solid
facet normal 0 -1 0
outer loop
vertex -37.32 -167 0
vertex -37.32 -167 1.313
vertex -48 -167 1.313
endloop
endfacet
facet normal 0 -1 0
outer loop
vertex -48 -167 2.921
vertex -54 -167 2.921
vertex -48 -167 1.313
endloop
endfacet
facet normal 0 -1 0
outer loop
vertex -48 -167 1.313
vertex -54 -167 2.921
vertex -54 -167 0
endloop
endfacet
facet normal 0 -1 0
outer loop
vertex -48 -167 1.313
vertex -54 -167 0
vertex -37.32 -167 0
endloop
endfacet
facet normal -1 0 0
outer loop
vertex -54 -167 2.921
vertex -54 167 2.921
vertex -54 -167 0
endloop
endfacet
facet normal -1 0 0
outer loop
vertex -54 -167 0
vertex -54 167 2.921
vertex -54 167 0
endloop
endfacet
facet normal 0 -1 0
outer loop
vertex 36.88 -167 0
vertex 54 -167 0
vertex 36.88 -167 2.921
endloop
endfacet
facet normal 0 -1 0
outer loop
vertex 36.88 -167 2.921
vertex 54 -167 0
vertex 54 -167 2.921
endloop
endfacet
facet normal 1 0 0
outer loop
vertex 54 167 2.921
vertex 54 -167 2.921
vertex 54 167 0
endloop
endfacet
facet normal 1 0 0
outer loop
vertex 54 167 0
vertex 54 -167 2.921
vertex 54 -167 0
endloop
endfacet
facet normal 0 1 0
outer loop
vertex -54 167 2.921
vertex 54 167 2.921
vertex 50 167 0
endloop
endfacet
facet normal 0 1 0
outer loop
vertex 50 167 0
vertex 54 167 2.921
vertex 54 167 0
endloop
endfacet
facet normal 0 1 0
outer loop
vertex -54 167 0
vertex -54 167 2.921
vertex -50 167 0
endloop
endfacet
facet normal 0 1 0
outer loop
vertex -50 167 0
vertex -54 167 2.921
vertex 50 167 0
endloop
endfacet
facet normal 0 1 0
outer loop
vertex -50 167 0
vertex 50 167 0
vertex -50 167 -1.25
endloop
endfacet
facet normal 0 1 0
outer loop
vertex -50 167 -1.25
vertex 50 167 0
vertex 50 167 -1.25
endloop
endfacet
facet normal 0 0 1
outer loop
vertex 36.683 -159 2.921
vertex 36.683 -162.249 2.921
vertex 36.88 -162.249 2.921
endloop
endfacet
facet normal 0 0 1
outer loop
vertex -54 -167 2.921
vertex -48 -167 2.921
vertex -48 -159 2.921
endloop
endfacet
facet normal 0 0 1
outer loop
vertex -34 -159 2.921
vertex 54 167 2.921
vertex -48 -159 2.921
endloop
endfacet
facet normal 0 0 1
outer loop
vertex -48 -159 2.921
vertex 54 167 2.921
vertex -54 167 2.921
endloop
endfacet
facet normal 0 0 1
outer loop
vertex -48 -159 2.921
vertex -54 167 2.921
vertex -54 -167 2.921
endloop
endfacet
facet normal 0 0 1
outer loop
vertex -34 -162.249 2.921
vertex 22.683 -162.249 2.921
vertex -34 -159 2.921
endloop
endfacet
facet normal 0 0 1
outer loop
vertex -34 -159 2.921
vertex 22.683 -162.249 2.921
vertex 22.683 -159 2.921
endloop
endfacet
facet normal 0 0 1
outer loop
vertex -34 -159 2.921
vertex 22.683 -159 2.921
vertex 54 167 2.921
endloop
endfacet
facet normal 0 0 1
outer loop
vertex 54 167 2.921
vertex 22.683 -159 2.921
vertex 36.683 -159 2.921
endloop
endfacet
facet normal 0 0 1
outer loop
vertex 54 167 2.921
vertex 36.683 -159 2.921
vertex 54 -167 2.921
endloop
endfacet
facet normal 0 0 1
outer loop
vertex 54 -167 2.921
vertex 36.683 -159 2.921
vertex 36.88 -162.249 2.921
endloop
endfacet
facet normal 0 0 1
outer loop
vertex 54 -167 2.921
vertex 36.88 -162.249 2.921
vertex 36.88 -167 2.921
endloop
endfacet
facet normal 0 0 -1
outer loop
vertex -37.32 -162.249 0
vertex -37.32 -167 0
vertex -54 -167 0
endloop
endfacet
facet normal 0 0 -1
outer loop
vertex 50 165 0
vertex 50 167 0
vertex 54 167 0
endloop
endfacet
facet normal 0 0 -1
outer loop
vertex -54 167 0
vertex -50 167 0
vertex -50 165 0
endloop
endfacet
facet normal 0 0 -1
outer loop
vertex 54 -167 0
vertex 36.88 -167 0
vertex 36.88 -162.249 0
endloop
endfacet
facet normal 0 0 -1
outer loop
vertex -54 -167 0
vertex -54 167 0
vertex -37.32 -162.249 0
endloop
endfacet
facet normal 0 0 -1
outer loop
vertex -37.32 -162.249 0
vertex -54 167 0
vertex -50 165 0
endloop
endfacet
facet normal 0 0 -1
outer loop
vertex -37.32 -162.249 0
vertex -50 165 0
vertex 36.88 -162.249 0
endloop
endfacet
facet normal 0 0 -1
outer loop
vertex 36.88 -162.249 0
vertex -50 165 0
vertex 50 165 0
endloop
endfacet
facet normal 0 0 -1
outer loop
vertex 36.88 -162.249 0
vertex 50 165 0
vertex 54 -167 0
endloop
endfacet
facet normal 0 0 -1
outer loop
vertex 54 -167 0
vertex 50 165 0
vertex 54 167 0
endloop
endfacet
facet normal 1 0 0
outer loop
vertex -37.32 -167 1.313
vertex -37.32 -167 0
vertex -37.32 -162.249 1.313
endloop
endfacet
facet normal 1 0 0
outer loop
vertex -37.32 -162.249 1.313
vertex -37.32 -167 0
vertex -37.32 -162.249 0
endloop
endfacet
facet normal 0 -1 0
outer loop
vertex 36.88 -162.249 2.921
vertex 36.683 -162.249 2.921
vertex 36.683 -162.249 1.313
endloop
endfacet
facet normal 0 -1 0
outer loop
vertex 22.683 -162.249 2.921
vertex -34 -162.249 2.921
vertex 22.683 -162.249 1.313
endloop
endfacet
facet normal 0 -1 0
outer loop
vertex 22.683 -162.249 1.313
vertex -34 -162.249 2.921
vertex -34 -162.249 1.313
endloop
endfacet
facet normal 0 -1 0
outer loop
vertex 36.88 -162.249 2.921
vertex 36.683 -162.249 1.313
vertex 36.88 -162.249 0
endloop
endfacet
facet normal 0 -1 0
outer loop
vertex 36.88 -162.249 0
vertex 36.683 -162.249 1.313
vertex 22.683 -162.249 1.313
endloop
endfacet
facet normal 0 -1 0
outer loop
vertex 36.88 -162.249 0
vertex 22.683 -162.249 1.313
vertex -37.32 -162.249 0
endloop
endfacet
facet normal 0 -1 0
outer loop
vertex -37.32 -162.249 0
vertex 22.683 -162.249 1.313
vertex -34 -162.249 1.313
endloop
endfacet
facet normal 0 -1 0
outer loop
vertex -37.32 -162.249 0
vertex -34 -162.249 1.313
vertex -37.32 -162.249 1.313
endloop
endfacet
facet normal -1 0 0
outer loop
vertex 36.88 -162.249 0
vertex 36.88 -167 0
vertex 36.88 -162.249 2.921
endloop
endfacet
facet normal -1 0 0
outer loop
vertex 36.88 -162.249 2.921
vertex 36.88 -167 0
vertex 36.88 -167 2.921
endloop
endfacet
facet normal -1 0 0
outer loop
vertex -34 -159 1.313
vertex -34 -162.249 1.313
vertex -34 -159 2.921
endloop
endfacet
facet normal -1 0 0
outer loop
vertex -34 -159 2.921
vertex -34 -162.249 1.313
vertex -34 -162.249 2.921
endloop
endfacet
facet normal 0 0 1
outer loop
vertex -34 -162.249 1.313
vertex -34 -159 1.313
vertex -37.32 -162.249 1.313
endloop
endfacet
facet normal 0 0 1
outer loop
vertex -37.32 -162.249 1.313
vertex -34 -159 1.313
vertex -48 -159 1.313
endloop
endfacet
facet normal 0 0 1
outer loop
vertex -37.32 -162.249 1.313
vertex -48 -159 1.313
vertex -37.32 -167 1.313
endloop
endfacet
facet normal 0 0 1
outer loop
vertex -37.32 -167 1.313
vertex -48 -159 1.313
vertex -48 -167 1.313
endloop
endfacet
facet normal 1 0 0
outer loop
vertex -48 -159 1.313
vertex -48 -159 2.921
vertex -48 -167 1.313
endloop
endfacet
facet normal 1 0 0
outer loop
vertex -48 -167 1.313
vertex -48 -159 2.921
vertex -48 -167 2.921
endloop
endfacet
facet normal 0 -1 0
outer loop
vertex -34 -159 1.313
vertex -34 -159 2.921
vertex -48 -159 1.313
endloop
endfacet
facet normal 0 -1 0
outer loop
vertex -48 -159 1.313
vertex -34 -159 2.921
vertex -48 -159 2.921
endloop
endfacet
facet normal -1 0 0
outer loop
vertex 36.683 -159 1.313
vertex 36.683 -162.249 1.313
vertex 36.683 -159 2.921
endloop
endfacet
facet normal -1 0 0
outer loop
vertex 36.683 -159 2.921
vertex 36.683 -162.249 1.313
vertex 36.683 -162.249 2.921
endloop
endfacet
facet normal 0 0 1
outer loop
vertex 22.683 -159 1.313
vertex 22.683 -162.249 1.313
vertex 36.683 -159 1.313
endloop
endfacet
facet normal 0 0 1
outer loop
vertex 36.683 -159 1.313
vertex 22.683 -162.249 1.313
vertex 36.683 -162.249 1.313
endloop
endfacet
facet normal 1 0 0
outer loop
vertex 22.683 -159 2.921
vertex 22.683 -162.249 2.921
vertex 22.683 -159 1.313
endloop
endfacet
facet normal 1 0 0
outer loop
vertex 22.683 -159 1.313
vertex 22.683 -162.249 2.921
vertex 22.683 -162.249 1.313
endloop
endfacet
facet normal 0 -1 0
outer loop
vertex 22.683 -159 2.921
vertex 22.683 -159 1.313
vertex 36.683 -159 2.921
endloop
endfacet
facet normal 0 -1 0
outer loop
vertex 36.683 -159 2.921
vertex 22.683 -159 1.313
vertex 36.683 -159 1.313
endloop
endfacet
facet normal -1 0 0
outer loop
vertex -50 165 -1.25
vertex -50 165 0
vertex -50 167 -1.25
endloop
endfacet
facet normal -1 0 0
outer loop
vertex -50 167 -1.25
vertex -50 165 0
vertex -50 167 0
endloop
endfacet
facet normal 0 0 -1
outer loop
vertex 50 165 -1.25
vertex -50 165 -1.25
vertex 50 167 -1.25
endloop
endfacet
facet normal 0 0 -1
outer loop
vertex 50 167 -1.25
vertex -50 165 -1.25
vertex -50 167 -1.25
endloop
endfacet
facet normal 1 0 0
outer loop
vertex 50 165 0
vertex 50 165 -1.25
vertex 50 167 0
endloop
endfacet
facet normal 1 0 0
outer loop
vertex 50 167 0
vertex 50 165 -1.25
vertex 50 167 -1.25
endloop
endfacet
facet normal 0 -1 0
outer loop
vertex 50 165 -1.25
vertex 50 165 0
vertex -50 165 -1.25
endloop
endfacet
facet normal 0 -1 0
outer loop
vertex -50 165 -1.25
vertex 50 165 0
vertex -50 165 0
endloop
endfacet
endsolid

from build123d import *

# Parameters (mm, degrees)
SKETCH1_W           = 108
SKETCH1_H           = 334
BOSS_EXTRUDE1_DEPTH = 2.921
SKETCH2_W           = 74.2
SKETCH2_H           = 4.75075517
CUT_EXTRUDE1_DEPTH  = 176.537837064
SKETCH3_W           = 14
SKETCH3_H           = 1.608195067
CUT_EXTRUDE2_DEPTH  = 8
SKETCH4_W           = 100
SKETCH4_H           = 1.25
BOSS_EXTRUDE2_DEPTH = 2


with BuildPart() as part:
    # Sketch1 → Boss-Extrude1 (new body)
    with BuildSketch(Plane.XY):
        Rectangle(SKETCH1_W, SKETCH1_H)
    extrude(amount=BOSS_EXTRUDE1_DEPTH)

    # Sketch2 → Cut-Extrude1 (cut, through all)
    with BuildSketch(Plane.XY.offset(2.921)):
        with Locations((-0.22, -164.624622415)):
            Rectangle(SKETCH2_W, SKETCH2_H)
    extrude(amount=-CUT_EXTRUDE1_DEPTH, mode=Mode.SUBTRACT)

    # Sketch3 → Cut-Extrude2 (cut)
    with BuildSketch(Plane.XZ.offset(167)):
        with Locations((29.682997172, 2.116902467)):
            Rectangle(SKETCH3_W, SKETCH3_H)
        with Locations((-41, 2.116902467)):
            Rectangle(SKETCH3_W, SKETCH3_H)
    extrude(amount=-CUT_EXTRUDE2_DEPTH, mode=Mode.SUBTRACT)

    # Sketch4 → Boss-Extrude2 (add)
    with BuildSketch(Plane(origin=(0, 167, 0), x_dir=(1, 0, 0), z_dir=(0, 1, 0))):
        with Locations((0, 0.625)):
            Rectangle(SKETCH4_W, SKETCH4_H)
    extrude(amount=-BOSS_EXTRUDE2_DEPTH)


solid = part.part
